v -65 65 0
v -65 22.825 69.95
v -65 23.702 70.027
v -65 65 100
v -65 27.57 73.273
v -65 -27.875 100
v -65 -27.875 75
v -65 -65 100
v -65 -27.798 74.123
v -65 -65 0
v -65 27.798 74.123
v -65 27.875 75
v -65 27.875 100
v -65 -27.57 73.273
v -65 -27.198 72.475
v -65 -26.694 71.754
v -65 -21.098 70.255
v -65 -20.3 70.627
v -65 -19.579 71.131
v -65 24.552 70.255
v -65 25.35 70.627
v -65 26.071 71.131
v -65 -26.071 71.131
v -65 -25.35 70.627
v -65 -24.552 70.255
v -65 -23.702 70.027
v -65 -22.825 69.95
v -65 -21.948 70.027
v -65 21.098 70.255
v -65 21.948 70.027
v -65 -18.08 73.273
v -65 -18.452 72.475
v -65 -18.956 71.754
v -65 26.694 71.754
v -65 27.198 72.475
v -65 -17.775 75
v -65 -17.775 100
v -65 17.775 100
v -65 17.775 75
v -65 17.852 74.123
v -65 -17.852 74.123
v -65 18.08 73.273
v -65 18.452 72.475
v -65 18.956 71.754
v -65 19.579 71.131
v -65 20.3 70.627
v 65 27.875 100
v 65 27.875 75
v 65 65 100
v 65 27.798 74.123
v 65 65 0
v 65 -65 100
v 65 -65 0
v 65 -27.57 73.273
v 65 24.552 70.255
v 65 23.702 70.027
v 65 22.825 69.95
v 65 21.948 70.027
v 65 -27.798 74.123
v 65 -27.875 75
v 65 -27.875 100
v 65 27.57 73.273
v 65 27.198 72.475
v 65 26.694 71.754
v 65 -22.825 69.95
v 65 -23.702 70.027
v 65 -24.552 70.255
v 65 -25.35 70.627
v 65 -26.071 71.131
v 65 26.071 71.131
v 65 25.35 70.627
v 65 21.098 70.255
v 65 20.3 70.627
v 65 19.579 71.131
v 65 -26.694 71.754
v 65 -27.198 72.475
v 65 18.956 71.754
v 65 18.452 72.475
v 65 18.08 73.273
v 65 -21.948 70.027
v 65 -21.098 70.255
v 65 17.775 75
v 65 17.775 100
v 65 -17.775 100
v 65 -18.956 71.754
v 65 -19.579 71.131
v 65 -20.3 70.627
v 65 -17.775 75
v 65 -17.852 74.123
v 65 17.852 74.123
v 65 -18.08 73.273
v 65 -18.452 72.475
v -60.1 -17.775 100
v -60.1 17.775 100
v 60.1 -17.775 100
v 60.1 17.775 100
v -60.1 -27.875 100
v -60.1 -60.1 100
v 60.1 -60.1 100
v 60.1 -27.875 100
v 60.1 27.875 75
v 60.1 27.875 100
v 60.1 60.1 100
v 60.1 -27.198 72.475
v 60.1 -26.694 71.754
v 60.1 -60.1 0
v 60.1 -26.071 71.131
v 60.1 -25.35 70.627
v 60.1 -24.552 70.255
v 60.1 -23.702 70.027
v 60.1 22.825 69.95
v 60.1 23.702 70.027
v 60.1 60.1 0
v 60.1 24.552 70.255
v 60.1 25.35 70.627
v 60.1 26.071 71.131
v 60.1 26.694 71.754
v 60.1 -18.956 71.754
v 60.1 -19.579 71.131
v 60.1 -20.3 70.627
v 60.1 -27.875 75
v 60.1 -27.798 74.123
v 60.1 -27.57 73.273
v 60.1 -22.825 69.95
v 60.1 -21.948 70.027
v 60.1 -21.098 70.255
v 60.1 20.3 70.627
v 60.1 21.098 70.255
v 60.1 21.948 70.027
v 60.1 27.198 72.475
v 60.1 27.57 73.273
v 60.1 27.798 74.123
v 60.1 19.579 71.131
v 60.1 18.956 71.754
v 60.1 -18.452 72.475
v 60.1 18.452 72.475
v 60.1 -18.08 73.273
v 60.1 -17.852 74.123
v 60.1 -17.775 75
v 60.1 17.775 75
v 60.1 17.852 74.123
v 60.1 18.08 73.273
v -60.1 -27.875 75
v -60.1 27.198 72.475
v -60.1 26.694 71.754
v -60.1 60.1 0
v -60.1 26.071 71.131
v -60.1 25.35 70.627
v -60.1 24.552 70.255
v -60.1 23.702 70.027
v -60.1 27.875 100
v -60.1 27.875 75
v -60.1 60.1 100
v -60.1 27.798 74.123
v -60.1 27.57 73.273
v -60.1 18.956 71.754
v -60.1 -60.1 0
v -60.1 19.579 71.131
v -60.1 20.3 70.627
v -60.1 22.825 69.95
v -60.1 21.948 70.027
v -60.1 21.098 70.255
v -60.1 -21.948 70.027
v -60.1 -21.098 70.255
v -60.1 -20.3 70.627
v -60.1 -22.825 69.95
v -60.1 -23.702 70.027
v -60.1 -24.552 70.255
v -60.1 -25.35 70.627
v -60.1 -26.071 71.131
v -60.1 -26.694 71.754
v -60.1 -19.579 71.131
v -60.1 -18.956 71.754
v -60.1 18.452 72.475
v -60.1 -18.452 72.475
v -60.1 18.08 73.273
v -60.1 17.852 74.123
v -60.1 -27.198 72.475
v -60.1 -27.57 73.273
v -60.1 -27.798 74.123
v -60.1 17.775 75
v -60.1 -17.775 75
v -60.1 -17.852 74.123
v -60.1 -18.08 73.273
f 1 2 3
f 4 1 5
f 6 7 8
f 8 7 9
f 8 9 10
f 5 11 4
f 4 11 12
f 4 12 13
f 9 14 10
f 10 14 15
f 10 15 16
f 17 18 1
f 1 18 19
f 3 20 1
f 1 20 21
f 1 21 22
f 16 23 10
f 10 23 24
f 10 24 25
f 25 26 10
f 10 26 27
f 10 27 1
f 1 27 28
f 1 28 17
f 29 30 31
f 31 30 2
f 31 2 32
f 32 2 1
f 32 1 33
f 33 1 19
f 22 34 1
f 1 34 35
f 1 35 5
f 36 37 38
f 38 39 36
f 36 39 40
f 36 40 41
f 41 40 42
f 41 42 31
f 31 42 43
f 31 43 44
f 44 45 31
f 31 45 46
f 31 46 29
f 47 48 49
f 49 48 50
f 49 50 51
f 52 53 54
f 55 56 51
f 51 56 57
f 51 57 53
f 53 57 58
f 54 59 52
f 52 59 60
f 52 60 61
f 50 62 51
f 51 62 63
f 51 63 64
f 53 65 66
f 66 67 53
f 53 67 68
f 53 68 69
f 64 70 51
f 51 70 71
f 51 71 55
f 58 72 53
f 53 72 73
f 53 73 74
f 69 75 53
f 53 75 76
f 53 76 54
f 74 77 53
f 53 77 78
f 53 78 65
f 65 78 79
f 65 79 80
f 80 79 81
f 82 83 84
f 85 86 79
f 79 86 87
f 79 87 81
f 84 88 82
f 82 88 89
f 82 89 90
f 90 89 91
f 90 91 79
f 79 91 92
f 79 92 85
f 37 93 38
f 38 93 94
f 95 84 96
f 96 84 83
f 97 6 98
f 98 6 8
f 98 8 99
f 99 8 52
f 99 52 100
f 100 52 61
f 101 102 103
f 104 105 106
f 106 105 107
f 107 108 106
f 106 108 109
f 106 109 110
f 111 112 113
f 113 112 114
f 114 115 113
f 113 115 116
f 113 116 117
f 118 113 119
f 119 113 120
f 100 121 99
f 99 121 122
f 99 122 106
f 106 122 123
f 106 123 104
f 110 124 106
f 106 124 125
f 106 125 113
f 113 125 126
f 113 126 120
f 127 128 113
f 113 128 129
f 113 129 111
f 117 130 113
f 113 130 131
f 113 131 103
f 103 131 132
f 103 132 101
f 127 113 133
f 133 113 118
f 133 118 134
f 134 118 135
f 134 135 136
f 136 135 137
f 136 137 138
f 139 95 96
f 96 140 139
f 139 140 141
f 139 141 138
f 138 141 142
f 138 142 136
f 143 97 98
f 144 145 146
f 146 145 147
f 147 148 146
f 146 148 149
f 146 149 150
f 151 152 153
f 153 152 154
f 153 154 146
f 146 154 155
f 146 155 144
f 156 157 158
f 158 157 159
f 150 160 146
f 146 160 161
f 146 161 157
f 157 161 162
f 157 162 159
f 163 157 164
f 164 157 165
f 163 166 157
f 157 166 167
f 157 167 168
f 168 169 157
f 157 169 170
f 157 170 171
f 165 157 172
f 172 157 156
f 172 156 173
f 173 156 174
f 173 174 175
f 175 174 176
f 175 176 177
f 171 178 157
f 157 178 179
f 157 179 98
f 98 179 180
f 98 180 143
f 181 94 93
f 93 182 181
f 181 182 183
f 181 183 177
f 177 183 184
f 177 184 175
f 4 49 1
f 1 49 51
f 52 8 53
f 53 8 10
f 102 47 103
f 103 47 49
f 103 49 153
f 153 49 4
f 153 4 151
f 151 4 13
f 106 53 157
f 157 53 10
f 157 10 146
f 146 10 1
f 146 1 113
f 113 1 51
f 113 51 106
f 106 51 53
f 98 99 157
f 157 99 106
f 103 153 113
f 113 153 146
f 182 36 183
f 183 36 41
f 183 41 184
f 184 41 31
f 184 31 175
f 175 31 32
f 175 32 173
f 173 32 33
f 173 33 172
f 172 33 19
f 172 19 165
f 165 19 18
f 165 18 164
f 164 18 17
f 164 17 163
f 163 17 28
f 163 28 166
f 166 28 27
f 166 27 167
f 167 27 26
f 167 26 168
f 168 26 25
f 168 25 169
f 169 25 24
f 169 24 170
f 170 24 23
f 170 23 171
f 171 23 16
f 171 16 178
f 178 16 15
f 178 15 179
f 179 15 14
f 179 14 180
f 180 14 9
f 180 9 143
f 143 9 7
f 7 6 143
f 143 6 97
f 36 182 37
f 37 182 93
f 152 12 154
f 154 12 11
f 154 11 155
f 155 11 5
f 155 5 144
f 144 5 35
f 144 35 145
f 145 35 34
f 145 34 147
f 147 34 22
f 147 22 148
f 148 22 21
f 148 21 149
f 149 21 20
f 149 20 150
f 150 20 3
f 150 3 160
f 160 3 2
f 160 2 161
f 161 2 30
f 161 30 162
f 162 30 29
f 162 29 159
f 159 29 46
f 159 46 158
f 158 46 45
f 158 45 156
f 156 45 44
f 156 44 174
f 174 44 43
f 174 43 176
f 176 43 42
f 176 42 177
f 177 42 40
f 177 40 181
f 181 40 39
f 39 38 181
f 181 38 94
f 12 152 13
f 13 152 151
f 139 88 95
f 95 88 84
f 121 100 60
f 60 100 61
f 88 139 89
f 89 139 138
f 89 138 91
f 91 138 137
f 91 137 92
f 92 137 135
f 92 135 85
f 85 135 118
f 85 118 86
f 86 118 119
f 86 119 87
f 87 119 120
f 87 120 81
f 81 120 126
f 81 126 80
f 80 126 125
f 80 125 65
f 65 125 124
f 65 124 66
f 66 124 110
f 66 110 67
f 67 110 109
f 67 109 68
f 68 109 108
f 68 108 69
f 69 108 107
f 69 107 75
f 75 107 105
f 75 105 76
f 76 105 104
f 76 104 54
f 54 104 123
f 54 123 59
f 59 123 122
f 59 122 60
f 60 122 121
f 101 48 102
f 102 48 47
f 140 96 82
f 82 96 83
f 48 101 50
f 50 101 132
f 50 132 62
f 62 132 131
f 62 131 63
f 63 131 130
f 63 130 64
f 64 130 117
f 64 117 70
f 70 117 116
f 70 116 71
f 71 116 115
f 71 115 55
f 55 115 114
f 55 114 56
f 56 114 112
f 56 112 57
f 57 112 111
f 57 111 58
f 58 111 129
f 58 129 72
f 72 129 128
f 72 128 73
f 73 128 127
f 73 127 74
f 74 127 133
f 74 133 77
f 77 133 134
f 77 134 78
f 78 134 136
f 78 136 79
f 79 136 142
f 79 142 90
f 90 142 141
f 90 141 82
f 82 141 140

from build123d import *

# Parameters (mm, degrees)
SKETCH1_W           = 130
SKETCH1_H           = 130
BOSS_EXTRUDE1_DEPTH = 100
SKETCH2_W           = 120.2
SKETCH2_H           = 120.2
CUT_EXTRUDE1_DEPTH  = 1000
CUT_EXTRUDE2_DEPTH  = 1000


with BuildPart() as part:
    # Sketch1 → Boss-Extrude1 (new body)
    with BuildSketch(Plane(origin=(0, 0, 0), x_dir=(0, 1, 0), z_dir=(0, 0, 1))):
        Rectangle(SKETCH1_W, SKETCH1_H)
    extrude(amount=BOSS_EXTRUDE1_DEPTH)

    # Sketch2 → Cut-Extrude1 (cut)
    with BuildSketch(Plane.XY.offset(100)):
        Rectangle(SKETCH2_W, SKETCH2_H)
    extrude(amount=-CUT_EXTRUDE1_DEPTH, mode=Mode.SUBTRACT)

    # Sketch3 → Cut-Extrude2 (cut)
    with BuildSketch(Plane(origin=(-65, 0, 0), x_dir=(0, -1, 0), z_dir=(-1, 0, 0))):
        with BuildLine():
            Line((27.875, 100), (17.775, 100))
            Line((17.775, 100), (17.775, 75))
            ThreePointArc((17.775, 75), (22.825, 80.05), (27.875, 75))
            Line((27.875, 75), (27.875, 100))
        make_face()
        with BuildLine():
            Line((-17.775, 100), (-27.875, 100))
            Line((-27.875, 100), (-27.875, 75))
            ThreePointArc((-27.875, 75), (-22.825, 80.05), (-17.775, 75))
            Line((-17.775, 75), (-17.775, 100))
        make_face()
        with BuildLine():
            ThreePointArc((-17.775, 75), (-22.825, 80.05), (-27.875, 75))
            Line((-27.875, 75), (-17.775, 75))
        make_face()
        with BuildLine():
            Line((-17.775, 75), (-27.875, 75))
            ThreePointArc((-27.875, 75), (-22.825, 69.95), (-17.775, 75))
        make_face()
        with BuildLine():
            ThreePointArc((27.875, 75), (22.825, 80.05), (17.775, 75))
            Line((17.775, 75), (27.875, 75))
        make_face()
        with BuildLine():
            Line((27.875, 75), (17.775, 75))
            ThreePointArc((17.775, 75), (22.825, 69.95), (27.875, 75))
        make_face()
    extrude(amount=-CUT_EXTRUDE2_DEPTH, mode=Mode.SUBTRACT)


solid = part.part
